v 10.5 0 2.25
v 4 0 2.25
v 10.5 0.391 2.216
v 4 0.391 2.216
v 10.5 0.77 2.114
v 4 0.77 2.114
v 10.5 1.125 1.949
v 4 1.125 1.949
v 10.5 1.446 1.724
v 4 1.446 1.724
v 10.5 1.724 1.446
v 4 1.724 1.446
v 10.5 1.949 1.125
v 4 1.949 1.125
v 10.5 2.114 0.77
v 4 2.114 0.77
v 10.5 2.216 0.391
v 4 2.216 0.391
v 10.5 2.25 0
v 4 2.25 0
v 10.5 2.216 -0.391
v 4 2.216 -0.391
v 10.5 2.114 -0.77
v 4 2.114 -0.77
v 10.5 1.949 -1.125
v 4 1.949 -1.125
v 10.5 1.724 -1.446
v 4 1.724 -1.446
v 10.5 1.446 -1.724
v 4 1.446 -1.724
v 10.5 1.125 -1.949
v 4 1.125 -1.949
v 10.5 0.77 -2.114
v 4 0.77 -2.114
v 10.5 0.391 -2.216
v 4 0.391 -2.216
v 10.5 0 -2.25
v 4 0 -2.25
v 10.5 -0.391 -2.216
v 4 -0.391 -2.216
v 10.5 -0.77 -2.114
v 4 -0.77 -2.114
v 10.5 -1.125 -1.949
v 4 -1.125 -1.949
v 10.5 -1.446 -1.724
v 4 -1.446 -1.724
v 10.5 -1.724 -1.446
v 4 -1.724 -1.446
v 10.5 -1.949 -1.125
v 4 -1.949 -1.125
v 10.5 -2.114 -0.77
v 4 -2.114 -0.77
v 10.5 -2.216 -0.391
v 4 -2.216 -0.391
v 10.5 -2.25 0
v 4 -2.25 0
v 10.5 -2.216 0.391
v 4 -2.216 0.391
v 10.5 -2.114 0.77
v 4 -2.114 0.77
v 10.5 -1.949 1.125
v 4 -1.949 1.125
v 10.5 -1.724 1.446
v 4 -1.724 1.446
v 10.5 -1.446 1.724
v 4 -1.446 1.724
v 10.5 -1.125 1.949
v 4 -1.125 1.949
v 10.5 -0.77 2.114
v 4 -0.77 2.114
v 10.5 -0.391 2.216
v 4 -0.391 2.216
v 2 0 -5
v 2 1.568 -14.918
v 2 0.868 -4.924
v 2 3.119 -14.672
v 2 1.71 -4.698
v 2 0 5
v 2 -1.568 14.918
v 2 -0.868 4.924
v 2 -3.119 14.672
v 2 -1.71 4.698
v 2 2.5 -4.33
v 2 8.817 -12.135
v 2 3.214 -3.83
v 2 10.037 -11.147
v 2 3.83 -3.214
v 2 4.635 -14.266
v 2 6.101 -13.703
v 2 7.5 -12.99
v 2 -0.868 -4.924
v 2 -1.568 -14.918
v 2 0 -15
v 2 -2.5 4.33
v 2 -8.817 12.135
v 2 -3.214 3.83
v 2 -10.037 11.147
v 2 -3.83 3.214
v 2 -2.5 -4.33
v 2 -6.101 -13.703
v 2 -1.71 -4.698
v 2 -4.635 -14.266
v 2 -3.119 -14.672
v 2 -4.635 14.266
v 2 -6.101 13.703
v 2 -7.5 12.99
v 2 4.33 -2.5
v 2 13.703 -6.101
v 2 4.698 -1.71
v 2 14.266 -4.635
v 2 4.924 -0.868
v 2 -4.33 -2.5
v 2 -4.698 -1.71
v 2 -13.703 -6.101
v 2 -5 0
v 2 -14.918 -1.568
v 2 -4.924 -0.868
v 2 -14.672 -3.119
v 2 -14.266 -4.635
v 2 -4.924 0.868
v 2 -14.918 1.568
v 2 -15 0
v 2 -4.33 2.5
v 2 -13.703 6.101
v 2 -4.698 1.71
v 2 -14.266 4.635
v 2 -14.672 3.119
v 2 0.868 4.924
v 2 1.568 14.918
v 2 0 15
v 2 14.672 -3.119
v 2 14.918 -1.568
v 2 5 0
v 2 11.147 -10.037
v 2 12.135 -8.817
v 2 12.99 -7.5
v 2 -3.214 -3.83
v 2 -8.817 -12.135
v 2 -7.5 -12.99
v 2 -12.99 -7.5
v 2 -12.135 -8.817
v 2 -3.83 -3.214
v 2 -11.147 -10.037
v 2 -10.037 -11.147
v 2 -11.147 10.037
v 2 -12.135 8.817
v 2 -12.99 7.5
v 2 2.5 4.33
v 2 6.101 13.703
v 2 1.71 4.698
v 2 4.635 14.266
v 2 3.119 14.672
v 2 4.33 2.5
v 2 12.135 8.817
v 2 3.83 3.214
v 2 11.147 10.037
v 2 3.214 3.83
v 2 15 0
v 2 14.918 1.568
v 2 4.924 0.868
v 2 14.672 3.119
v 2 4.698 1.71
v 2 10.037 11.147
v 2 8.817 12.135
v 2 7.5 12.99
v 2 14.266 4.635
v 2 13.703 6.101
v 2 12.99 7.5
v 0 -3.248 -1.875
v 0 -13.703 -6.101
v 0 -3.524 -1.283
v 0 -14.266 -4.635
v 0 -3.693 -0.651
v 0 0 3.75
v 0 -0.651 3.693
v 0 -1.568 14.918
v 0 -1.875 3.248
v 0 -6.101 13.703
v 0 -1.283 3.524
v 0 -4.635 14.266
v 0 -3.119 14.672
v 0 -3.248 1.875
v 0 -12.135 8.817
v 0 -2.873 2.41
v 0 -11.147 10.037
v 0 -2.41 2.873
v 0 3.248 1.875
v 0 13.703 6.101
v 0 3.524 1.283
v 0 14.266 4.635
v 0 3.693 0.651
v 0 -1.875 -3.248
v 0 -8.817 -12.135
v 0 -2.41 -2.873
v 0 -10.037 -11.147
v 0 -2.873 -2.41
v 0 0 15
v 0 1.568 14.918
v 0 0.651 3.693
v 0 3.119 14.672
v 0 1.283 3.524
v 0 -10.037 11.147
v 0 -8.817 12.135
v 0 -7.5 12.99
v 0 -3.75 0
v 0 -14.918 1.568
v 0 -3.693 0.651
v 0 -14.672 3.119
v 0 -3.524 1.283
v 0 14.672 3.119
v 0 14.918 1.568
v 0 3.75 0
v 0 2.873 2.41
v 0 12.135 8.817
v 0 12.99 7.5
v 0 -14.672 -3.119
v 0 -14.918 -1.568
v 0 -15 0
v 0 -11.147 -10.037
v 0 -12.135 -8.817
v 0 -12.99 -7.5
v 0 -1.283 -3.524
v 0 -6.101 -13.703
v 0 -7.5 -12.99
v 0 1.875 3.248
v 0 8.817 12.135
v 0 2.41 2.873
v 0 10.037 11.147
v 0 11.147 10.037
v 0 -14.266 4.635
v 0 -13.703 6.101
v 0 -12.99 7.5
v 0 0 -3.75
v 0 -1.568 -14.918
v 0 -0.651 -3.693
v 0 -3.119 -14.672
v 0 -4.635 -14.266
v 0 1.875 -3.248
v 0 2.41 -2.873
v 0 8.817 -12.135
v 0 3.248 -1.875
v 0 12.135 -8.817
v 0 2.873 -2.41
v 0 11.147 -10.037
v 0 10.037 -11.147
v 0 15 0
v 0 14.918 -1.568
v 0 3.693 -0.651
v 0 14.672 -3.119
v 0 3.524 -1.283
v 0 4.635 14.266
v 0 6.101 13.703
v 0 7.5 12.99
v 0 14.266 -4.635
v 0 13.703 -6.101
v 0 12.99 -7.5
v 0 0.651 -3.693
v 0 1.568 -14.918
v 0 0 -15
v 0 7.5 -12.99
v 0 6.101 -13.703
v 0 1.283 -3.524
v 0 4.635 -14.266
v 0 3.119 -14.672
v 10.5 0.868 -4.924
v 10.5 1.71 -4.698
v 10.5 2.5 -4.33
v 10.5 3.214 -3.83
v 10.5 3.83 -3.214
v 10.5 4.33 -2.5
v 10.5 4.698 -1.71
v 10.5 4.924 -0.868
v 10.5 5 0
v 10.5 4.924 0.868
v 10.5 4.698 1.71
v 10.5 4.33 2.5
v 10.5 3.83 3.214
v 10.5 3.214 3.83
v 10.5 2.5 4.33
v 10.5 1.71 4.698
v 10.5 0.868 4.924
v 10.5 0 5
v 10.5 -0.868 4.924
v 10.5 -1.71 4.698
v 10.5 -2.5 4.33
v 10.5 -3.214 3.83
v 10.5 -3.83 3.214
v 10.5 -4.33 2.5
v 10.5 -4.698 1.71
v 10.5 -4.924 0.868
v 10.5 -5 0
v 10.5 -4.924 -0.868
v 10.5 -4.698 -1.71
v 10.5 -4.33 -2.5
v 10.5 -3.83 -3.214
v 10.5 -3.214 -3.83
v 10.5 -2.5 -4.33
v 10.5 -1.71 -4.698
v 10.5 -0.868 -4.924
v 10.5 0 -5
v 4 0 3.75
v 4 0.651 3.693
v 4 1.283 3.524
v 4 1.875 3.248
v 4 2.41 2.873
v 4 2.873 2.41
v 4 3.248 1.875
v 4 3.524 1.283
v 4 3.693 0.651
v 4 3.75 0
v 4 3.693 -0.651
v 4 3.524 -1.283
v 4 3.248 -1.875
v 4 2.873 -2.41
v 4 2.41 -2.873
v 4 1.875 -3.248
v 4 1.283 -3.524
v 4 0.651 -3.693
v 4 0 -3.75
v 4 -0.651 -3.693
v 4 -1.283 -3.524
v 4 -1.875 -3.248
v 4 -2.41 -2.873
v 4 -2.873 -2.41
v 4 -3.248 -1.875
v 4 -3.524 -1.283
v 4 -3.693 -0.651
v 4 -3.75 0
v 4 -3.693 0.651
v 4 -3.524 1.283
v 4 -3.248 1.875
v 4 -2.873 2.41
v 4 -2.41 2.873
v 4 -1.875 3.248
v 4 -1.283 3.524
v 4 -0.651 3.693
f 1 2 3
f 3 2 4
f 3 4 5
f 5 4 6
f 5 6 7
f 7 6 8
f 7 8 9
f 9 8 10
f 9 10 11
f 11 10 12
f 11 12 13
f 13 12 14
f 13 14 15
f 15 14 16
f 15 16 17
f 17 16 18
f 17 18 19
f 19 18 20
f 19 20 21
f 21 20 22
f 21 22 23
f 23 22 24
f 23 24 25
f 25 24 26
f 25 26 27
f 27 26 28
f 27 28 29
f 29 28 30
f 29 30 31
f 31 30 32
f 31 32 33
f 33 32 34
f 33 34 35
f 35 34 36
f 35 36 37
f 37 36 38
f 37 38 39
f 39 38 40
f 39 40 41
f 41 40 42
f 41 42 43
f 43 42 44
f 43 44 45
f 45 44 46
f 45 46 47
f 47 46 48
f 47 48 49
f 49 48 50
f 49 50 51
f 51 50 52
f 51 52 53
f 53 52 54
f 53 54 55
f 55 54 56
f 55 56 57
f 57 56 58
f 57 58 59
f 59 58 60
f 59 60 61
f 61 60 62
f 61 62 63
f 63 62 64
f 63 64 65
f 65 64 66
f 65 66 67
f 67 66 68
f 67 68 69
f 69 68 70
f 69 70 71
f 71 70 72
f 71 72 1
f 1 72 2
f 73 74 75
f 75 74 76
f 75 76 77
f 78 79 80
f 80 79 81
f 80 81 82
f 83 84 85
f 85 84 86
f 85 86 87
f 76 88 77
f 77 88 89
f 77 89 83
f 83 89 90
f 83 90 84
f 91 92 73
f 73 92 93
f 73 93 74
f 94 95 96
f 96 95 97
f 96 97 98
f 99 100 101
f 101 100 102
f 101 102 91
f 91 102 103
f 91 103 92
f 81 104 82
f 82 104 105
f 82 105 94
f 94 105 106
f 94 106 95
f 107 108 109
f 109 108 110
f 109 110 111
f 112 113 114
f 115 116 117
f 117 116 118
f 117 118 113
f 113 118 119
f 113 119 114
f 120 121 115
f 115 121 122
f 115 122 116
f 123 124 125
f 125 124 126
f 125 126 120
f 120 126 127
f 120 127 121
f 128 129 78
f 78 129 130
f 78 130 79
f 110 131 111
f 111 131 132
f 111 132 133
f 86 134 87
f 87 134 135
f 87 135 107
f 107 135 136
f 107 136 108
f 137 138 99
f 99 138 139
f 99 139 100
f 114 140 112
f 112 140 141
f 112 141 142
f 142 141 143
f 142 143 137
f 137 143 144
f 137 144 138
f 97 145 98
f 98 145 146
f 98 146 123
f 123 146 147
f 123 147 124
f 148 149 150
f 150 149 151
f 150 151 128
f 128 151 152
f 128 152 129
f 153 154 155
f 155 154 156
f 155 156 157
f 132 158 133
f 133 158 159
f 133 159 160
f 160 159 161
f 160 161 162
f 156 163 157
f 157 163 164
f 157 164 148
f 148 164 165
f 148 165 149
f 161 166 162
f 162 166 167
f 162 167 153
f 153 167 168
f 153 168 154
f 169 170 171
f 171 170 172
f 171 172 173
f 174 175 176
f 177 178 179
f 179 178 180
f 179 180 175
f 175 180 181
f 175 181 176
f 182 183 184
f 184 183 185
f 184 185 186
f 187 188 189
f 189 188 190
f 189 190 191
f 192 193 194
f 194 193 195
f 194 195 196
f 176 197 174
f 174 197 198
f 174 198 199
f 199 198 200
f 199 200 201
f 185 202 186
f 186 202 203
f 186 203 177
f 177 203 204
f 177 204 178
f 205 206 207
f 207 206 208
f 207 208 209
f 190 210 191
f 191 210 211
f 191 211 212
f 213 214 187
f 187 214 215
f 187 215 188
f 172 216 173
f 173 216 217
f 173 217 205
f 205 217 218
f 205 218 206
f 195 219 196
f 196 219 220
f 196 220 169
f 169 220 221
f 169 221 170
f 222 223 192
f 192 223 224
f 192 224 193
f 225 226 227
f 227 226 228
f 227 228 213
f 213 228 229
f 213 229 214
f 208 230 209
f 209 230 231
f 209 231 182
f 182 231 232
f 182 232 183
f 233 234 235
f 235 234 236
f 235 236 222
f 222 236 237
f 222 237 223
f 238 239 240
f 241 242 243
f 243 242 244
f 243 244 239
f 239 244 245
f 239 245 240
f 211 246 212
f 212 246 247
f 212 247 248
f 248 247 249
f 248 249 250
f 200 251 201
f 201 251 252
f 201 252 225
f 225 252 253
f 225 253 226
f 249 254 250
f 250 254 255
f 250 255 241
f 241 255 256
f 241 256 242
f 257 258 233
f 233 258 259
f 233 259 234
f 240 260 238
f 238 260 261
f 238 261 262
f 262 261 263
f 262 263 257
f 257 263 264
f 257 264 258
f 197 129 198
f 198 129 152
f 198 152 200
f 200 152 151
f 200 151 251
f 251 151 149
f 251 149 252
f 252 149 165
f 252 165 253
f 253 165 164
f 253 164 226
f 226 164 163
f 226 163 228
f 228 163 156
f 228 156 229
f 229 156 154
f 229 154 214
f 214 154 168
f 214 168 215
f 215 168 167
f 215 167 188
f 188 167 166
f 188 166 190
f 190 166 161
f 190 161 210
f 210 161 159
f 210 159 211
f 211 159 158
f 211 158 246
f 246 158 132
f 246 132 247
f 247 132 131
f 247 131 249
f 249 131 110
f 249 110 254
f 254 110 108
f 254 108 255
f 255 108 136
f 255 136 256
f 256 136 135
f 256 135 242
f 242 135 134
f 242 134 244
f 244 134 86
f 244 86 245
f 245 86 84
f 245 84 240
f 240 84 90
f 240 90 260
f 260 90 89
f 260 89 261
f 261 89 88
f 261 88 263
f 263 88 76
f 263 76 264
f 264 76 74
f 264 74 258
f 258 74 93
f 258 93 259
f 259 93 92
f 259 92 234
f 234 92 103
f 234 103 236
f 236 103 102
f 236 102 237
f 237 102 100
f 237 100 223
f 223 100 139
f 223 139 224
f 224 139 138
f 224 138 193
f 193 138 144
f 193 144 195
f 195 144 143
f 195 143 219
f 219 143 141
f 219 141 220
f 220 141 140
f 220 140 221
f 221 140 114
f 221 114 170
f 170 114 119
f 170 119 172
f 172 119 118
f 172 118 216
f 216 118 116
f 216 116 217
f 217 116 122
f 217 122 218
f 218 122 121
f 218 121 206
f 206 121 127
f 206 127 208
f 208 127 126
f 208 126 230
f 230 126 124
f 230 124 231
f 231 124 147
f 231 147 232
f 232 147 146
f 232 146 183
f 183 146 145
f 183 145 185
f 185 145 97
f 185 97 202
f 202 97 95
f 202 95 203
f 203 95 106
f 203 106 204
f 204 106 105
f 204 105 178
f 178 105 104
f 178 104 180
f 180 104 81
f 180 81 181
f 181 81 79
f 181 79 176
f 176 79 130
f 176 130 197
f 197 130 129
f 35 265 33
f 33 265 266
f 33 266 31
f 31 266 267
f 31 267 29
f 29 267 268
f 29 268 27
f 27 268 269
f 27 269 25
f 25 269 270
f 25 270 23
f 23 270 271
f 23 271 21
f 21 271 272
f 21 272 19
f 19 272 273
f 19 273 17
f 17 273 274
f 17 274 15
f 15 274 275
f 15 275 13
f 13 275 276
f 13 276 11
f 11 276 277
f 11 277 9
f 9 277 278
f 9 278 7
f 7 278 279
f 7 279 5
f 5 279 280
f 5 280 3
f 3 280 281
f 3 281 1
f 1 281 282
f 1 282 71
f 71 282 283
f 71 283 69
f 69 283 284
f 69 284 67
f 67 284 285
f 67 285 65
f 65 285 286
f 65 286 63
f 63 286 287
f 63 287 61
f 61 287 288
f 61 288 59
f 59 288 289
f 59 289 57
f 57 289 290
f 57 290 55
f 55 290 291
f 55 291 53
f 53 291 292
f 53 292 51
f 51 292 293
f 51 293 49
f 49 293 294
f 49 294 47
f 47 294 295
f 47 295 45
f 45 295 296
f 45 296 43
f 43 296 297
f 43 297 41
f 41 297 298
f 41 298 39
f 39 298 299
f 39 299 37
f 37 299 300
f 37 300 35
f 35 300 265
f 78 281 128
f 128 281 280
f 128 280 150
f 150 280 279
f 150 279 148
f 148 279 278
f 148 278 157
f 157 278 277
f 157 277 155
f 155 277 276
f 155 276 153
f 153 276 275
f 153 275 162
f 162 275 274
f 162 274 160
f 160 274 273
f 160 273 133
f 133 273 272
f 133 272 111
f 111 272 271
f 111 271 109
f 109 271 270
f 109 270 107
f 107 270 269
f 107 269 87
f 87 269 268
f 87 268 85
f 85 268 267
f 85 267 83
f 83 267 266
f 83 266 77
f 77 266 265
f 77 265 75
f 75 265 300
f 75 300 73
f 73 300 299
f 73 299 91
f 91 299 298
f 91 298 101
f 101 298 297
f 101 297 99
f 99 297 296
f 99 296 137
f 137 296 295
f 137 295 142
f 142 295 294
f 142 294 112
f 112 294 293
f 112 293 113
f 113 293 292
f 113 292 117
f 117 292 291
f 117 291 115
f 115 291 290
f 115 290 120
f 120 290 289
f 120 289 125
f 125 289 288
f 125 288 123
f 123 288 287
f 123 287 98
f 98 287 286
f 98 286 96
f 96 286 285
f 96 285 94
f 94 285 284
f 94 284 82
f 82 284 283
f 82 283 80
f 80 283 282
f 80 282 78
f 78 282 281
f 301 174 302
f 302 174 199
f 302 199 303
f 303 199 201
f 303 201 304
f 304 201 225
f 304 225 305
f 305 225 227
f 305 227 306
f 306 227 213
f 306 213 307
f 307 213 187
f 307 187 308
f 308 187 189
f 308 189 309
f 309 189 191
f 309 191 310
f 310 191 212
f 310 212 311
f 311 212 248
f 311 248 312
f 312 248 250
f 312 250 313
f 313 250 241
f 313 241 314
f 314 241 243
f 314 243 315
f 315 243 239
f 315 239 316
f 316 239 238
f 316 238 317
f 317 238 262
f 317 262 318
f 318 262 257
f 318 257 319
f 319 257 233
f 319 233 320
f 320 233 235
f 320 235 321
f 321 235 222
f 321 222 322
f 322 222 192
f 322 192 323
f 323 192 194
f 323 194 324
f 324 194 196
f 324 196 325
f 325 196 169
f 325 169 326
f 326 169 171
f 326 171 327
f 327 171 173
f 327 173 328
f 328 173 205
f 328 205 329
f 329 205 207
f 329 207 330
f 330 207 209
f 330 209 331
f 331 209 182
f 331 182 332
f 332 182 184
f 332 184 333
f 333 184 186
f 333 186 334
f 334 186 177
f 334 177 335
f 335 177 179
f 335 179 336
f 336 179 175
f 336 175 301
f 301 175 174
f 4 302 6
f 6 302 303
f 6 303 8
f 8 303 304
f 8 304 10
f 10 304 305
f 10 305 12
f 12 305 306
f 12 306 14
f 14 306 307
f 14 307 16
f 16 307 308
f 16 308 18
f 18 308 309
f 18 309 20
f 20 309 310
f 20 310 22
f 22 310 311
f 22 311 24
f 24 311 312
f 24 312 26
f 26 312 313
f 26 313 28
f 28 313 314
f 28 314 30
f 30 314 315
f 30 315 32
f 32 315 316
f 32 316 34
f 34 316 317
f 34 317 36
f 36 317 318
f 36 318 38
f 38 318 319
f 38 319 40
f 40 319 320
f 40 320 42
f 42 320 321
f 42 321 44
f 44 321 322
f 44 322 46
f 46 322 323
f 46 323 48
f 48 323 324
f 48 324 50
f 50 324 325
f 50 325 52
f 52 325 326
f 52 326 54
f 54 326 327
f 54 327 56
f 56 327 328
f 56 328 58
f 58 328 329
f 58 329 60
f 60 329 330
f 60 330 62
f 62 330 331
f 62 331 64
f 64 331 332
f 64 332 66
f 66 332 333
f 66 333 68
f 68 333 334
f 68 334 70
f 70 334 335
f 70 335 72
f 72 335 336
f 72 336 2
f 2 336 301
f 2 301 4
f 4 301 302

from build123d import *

# Parameters (mm, degrees)
CROQUIS1_R              = 15
CROQUIS1_R_2            = 2.25
SALIENTE_EXTRUIR1_DEPTH = 2
CROQUIS3_R              = 5
CROQUIS3_R_2            = 2.25
SALIENTE_EXTRUIR2_DEPTH = 8.5
CROQUIS4_R              = 3.75
CORTAR_EXTRUIR1_DEPTH   = 4


with BuildPart() as part:
    # Croquis1 → Saliente-Extruir1 (new body)
    with BuildSketch(Plane(origin=(0, 0, 0), x_dir=(0, 0, -1), z_dir=(1, 0, 0))):
        Circle(CROQUIS1_R)
        Circle(CROQUIS1_R_2, mode=Mode.SUBTRACT)
    extrude(amount=SALIENTE_EXTRUIR1_DEPTH)

    # Croquis3 → Saliente-Extruir2 (add)
    with BuildSketch(Plane(origin=(2, 0, 0), x_dir=(0, 0, -1), z_dir=(1, 0, 0))):
        Circle(CROQUIS3_R)
        Circle(CROQUIS3_R_2, mode=Mode.SUBTRACT)
    extrude(amount=SALIENTE_EXTRUIR2_DEPTH)

    # Croquis4 → Cortar-Extruir1 (cut)
    with BuildSketch(Plane.ZY):
        Circle(CROQUIS4_R)
    extrude(amount=-CORTAR_EXTRUIR1_DEPTH, mode=Mode.SUBTRACT)


solid = part.part
